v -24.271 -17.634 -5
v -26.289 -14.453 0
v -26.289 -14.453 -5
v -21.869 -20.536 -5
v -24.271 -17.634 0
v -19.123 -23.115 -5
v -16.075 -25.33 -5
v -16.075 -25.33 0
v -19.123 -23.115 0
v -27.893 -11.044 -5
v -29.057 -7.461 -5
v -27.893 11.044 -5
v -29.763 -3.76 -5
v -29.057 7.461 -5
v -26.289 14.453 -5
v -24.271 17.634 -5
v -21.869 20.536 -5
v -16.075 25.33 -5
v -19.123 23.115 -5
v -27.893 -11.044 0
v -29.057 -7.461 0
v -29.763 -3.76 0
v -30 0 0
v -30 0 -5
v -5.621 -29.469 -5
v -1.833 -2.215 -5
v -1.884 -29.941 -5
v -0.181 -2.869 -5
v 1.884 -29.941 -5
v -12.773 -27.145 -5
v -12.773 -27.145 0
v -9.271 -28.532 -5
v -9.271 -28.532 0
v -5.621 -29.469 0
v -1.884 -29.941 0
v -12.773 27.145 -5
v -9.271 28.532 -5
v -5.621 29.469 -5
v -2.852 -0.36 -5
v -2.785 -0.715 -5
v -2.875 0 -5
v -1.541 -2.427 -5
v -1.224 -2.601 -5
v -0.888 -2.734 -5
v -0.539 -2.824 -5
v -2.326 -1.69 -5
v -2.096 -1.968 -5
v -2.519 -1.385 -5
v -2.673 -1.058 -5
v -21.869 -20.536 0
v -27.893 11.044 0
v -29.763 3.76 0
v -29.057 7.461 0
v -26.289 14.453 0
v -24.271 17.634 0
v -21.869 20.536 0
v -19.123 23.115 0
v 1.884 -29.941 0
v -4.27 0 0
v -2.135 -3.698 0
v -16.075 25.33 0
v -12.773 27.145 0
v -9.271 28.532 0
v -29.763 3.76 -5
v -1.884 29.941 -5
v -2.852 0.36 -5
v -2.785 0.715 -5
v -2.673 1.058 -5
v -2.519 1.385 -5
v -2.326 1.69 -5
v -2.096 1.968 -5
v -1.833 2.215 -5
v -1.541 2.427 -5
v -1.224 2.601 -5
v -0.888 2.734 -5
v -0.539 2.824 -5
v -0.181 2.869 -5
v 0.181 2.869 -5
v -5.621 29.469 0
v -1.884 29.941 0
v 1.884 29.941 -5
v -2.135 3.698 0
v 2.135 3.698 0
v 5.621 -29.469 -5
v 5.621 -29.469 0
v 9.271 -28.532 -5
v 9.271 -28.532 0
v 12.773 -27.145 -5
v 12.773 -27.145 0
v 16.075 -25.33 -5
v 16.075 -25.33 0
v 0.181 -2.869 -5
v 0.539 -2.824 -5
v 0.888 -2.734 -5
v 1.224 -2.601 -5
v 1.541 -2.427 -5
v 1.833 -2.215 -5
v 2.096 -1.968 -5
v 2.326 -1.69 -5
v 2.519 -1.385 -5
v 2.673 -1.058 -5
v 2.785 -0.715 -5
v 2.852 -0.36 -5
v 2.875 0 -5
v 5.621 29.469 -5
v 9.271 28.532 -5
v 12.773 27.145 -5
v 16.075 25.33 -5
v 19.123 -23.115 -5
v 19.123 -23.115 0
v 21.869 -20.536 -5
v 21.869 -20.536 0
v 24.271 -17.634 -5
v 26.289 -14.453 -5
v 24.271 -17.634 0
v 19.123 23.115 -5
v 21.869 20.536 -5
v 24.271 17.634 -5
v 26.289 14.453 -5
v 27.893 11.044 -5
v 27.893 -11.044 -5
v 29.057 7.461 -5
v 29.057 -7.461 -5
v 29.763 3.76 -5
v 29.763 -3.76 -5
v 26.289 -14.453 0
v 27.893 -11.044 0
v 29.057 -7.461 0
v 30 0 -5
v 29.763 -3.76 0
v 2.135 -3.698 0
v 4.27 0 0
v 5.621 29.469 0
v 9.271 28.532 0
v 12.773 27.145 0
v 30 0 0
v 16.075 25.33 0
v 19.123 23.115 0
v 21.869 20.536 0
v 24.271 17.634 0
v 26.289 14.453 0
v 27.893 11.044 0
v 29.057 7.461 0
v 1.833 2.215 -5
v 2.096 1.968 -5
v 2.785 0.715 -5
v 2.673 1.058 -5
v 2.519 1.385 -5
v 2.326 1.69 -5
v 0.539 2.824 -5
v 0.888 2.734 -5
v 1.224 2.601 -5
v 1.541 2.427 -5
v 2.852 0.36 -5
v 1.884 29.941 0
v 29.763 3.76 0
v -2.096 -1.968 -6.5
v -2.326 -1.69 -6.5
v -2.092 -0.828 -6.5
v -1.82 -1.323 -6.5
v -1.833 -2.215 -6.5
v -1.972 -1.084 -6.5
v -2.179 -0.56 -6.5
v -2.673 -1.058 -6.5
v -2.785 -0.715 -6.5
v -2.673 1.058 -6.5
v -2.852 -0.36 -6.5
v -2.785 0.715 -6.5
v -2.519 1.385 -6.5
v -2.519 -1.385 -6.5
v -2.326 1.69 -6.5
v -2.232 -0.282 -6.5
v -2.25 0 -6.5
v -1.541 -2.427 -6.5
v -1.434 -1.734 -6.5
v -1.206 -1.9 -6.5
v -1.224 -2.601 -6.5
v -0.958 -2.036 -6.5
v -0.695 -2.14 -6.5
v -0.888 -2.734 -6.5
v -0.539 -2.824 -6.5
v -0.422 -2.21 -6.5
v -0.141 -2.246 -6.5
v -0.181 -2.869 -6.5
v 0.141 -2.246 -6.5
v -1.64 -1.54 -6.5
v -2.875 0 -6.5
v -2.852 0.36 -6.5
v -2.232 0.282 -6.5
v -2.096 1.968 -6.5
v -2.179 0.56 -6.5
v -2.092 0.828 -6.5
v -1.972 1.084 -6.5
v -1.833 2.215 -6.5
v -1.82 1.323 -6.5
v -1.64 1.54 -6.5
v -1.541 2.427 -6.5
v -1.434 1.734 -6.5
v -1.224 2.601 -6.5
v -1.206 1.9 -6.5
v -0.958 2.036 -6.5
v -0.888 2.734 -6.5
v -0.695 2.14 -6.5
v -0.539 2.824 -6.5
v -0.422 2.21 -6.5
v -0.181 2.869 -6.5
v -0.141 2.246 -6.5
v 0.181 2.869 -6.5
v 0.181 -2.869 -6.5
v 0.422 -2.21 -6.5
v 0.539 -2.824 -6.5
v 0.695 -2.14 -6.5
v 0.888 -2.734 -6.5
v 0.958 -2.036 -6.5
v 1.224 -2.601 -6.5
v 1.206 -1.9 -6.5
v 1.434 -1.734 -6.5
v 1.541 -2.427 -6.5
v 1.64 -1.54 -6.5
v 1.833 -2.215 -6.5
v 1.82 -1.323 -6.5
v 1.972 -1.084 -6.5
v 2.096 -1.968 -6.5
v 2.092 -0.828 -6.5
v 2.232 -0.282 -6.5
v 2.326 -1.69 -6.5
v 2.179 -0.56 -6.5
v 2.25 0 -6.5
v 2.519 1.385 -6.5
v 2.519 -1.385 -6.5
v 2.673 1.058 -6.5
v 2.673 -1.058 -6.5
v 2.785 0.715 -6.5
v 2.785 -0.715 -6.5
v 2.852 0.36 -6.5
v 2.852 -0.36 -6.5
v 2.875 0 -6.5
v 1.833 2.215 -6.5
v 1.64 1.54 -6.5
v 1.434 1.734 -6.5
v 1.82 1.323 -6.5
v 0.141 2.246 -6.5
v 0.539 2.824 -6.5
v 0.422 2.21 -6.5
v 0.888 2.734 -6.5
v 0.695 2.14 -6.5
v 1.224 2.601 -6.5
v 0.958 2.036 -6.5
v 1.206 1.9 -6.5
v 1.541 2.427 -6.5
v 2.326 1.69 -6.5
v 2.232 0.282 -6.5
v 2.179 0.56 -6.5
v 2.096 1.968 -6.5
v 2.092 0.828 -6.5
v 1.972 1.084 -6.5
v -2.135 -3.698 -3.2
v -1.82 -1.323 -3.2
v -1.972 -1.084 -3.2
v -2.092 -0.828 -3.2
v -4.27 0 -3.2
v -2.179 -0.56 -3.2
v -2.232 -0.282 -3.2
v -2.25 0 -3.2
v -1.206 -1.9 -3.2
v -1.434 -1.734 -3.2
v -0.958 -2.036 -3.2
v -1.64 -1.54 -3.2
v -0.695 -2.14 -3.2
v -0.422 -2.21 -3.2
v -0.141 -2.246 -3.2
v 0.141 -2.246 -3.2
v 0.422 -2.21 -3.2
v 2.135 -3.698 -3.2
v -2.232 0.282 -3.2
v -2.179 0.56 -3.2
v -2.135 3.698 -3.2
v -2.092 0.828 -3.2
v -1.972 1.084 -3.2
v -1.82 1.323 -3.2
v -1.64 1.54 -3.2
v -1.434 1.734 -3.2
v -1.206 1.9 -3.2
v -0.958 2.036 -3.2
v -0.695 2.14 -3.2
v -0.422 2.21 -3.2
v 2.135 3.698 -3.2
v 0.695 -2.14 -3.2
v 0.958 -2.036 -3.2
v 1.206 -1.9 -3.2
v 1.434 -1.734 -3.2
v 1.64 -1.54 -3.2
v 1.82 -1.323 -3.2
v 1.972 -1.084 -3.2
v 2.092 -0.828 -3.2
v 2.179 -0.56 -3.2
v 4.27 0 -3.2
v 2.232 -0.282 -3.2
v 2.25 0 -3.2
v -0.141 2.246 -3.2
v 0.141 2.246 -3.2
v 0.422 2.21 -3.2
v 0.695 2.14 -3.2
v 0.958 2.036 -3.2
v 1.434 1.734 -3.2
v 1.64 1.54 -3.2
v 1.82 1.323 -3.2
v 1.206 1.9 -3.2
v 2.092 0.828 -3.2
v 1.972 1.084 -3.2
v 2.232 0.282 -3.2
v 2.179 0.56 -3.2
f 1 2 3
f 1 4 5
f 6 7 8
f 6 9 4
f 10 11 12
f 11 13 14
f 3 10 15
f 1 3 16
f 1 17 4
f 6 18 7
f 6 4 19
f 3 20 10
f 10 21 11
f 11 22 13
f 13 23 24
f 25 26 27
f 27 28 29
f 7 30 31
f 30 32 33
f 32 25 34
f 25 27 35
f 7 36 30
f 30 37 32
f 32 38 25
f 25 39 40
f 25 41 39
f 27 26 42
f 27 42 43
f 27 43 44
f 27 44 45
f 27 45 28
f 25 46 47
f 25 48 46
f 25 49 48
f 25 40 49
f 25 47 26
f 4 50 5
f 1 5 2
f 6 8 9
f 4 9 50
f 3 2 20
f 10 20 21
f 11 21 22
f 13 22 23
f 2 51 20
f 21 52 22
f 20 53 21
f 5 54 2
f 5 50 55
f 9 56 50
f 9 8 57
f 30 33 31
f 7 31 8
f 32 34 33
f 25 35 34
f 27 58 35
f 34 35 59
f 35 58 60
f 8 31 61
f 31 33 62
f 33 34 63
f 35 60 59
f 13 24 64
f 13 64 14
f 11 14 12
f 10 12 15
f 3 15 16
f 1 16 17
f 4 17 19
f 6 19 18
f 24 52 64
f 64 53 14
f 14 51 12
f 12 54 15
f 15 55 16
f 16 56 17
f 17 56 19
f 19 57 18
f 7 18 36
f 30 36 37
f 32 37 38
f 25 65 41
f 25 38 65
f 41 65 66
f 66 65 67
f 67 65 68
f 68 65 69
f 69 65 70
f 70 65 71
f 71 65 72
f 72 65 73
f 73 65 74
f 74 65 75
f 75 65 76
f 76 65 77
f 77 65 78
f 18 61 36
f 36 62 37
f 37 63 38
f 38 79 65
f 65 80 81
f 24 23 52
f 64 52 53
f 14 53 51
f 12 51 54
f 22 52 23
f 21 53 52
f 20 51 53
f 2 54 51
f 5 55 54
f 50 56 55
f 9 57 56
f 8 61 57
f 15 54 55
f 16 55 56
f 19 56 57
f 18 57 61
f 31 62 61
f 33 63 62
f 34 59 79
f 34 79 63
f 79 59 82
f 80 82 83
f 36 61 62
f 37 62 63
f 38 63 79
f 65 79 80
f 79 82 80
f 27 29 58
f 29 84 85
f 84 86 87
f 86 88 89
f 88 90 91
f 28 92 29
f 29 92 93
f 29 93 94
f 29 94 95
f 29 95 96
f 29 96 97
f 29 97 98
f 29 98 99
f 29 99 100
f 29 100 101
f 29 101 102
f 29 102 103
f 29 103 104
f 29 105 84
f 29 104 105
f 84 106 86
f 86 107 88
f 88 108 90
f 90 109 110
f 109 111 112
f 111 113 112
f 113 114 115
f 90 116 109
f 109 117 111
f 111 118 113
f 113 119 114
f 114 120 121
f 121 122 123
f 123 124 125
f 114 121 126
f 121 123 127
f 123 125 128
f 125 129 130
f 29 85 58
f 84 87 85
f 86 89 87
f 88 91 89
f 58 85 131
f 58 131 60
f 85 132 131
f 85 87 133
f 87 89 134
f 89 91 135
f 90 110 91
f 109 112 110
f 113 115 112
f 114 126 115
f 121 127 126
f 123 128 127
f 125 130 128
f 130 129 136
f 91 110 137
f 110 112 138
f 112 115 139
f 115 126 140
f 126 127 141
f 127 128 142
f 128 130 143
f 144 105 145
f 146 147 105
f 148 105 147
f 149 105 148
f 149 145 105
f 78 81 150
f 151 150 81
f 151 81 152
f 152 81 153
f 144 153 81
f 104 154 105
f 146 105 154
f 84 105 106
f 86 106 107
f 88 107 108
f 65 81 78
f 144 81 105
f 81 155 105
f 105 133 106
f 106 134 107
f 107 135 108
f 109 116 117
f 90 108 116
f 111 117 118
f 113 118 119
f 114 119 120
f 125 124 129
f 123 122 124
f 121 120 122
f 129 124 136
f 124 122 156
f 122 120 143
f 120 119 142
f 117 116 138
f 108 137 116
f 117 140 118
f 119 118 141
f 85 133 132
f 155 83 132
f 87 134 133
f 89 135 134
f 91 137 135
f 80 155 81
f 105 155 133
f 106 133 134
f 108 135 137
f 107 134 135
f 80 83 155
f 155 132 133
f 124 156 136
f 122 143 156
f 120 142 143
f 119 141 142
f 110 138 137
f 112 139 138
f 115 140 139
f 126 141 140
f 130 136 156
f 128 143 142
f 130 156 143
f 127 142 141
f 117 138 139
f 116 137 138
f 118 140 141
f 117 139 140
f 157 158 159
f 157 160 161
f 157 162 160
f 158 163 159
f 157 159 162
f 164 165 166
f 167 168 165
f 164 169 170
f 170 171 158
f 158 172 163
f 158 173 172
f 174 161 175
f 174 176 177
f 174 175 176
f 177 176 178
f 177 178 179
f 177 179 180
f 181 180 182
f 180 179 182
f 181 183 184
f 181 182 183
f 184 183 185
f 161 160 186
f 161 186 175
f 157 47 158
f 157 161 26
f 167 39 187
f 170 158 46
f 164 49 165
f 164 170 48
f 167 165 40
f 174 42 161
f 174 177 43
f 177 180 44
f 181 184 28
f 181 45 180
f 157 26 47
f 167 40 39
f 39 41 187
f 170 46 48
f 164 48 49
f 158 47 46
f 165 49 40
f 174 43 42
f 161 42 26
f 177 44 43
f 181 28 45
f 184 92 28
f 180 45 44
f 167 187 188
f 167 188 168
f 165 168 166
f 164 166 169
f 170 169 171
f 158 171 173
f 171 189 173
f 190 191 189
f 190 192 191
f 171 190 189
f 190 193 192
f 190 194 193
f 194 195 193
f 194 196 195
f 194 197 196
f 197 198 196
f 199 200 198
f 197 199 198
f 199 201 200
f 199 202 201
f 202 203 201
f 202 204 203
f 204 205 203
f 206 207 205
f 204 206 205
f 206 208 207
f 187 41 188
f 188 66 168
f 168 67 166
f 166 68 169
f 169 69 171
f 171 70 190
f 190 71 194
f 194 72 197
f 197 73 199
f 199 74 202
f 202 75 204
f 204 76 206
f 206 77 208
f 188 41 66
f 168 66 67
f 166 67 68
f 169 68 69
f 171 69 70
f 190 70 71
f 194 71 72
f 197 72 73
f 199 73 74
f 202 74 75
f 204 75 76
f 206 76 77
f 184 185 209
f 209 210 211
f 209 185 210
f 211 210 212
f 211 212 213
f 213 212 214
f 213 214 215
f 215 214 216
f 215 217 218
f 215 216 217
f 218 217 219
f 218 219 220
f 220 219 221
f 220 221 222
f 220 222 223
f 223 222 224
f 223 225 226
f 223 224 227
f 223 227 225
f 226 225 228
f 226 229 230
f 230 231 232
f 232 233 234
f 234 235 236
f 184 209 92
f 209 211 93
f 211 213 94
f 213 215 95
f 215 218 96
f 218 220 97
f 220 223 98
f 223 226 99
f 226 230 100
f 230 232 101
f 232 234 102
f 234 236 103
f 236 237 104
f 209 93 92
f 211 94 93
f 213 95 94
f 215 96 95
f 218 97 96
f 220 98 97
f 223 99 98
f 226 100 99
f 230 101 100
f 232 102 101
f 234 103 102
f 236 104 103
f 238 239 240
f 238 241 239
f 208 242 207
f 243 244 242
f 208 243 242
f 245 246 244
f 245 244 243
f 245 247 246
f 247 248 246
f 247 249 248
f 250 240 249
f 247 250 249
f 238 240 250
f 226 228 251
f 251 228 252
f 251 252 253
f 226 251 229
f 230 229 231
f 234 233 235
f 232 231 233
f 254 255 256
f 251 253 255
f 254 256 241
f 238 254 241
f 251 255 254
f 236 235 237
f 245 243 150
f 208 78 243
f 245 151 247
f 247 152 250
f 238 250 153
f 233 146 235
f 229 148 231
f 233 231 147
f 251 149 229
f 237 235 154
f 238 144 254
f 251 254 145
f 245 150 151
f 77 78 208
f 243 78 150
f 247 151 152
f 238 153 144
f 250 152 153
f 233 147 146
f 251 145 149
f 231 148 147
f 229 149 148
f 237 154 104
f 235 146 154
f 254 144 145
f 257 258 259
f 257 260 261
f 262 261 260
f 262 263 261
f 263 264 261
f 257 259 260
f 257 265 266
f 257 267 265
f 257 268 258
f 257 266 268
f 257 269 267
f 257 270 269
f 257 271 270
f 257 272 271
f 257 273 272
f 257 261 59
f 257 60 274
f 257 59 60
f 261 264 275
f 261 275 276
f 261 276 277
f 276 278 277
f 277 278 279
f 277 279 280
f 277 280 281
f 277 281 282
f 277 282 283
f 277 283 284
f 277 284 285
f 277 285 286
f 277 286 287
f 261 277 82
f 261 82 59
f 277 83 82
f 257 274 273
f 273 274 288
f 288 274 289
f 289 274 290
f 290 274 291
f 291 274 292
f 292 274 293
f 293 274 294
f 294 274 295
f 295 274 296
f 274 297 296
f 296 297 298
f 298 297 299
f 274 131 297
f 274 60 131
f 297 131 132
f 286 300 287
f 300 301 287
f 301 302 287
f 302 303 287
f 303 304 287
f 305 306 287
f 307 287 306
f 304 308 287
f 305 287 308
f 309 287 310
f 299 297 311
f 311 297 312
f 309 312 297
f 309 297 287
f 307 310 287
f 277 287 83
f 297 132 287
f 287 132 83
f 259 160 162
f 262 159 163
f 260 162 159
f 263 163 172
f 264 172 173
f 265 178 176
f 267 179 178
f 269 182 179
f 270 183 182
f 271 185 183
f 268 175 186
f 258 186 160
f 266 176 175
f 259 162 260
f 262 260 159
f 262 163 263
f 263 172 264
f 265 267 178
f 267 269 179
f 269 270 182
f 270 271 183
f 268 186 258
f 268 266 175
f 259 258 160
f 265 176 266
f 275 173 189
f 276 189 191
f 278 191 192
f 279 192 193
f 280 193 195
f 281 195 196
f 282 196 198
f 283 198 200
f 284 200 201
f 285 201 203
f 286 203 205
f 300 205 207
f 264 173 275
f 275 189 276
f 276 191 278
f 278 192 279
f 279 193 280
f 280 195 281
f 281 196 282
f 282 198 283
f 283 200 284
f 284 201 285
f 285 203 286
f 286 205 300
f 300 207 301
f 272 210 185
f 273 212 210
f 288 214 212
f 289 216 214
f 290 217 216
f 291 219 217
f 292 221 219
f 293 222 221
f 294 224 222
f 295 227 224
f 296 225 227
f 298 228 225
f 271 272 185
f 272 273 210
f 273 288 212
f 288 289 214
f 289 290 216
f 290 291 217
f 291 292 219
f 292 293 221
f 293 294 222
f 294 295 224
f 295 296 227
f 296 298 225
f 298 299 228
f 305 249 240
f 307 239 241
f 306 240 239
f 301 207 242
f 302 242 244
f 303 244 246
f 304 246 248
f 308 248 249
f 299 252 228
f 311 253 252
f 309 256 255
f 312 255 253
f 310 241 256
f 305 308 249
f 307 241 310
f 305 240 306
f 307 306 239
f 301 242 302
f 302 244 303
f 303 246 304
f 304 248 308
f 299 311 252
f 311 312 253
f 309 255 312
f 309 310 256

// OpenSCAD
$fn = 50;

difference() {
	union() {
		translate(v = [0, 0, -5.0]) {
			cylinder(h = 5.0, r = 30.0);
		}
		#translate(v = [0, 0, -6.5]) {
			cylinder(h = 6.5, r = 2.875);
		}
	}
	union() {
		translate(v = [0, 0, 0]) {
			rotate(a = [0, 0, 0]) {
				difference() {
					union() {
						translate(v = [0, 0, -3.2]) {
							linear_extrude(height = 3.2) {
								polygon(points = [[4.2698, 0.0], [2.1349000000000005, 3.697755269078796], [-2.134899999999999, 3.6977552690787965], [-4.2698, 5.228996902999369e-16], [-2.134900000000002, -3.6977552690787956], [2.1348999999999974, -3.697755269078798]]);
							}
						}
					}
					union();
				}
			}
		}
		#translate(v = [0, 0, -100.0]) {
			cylinder(h = 200, r = 2.25);
		}
	}
}
